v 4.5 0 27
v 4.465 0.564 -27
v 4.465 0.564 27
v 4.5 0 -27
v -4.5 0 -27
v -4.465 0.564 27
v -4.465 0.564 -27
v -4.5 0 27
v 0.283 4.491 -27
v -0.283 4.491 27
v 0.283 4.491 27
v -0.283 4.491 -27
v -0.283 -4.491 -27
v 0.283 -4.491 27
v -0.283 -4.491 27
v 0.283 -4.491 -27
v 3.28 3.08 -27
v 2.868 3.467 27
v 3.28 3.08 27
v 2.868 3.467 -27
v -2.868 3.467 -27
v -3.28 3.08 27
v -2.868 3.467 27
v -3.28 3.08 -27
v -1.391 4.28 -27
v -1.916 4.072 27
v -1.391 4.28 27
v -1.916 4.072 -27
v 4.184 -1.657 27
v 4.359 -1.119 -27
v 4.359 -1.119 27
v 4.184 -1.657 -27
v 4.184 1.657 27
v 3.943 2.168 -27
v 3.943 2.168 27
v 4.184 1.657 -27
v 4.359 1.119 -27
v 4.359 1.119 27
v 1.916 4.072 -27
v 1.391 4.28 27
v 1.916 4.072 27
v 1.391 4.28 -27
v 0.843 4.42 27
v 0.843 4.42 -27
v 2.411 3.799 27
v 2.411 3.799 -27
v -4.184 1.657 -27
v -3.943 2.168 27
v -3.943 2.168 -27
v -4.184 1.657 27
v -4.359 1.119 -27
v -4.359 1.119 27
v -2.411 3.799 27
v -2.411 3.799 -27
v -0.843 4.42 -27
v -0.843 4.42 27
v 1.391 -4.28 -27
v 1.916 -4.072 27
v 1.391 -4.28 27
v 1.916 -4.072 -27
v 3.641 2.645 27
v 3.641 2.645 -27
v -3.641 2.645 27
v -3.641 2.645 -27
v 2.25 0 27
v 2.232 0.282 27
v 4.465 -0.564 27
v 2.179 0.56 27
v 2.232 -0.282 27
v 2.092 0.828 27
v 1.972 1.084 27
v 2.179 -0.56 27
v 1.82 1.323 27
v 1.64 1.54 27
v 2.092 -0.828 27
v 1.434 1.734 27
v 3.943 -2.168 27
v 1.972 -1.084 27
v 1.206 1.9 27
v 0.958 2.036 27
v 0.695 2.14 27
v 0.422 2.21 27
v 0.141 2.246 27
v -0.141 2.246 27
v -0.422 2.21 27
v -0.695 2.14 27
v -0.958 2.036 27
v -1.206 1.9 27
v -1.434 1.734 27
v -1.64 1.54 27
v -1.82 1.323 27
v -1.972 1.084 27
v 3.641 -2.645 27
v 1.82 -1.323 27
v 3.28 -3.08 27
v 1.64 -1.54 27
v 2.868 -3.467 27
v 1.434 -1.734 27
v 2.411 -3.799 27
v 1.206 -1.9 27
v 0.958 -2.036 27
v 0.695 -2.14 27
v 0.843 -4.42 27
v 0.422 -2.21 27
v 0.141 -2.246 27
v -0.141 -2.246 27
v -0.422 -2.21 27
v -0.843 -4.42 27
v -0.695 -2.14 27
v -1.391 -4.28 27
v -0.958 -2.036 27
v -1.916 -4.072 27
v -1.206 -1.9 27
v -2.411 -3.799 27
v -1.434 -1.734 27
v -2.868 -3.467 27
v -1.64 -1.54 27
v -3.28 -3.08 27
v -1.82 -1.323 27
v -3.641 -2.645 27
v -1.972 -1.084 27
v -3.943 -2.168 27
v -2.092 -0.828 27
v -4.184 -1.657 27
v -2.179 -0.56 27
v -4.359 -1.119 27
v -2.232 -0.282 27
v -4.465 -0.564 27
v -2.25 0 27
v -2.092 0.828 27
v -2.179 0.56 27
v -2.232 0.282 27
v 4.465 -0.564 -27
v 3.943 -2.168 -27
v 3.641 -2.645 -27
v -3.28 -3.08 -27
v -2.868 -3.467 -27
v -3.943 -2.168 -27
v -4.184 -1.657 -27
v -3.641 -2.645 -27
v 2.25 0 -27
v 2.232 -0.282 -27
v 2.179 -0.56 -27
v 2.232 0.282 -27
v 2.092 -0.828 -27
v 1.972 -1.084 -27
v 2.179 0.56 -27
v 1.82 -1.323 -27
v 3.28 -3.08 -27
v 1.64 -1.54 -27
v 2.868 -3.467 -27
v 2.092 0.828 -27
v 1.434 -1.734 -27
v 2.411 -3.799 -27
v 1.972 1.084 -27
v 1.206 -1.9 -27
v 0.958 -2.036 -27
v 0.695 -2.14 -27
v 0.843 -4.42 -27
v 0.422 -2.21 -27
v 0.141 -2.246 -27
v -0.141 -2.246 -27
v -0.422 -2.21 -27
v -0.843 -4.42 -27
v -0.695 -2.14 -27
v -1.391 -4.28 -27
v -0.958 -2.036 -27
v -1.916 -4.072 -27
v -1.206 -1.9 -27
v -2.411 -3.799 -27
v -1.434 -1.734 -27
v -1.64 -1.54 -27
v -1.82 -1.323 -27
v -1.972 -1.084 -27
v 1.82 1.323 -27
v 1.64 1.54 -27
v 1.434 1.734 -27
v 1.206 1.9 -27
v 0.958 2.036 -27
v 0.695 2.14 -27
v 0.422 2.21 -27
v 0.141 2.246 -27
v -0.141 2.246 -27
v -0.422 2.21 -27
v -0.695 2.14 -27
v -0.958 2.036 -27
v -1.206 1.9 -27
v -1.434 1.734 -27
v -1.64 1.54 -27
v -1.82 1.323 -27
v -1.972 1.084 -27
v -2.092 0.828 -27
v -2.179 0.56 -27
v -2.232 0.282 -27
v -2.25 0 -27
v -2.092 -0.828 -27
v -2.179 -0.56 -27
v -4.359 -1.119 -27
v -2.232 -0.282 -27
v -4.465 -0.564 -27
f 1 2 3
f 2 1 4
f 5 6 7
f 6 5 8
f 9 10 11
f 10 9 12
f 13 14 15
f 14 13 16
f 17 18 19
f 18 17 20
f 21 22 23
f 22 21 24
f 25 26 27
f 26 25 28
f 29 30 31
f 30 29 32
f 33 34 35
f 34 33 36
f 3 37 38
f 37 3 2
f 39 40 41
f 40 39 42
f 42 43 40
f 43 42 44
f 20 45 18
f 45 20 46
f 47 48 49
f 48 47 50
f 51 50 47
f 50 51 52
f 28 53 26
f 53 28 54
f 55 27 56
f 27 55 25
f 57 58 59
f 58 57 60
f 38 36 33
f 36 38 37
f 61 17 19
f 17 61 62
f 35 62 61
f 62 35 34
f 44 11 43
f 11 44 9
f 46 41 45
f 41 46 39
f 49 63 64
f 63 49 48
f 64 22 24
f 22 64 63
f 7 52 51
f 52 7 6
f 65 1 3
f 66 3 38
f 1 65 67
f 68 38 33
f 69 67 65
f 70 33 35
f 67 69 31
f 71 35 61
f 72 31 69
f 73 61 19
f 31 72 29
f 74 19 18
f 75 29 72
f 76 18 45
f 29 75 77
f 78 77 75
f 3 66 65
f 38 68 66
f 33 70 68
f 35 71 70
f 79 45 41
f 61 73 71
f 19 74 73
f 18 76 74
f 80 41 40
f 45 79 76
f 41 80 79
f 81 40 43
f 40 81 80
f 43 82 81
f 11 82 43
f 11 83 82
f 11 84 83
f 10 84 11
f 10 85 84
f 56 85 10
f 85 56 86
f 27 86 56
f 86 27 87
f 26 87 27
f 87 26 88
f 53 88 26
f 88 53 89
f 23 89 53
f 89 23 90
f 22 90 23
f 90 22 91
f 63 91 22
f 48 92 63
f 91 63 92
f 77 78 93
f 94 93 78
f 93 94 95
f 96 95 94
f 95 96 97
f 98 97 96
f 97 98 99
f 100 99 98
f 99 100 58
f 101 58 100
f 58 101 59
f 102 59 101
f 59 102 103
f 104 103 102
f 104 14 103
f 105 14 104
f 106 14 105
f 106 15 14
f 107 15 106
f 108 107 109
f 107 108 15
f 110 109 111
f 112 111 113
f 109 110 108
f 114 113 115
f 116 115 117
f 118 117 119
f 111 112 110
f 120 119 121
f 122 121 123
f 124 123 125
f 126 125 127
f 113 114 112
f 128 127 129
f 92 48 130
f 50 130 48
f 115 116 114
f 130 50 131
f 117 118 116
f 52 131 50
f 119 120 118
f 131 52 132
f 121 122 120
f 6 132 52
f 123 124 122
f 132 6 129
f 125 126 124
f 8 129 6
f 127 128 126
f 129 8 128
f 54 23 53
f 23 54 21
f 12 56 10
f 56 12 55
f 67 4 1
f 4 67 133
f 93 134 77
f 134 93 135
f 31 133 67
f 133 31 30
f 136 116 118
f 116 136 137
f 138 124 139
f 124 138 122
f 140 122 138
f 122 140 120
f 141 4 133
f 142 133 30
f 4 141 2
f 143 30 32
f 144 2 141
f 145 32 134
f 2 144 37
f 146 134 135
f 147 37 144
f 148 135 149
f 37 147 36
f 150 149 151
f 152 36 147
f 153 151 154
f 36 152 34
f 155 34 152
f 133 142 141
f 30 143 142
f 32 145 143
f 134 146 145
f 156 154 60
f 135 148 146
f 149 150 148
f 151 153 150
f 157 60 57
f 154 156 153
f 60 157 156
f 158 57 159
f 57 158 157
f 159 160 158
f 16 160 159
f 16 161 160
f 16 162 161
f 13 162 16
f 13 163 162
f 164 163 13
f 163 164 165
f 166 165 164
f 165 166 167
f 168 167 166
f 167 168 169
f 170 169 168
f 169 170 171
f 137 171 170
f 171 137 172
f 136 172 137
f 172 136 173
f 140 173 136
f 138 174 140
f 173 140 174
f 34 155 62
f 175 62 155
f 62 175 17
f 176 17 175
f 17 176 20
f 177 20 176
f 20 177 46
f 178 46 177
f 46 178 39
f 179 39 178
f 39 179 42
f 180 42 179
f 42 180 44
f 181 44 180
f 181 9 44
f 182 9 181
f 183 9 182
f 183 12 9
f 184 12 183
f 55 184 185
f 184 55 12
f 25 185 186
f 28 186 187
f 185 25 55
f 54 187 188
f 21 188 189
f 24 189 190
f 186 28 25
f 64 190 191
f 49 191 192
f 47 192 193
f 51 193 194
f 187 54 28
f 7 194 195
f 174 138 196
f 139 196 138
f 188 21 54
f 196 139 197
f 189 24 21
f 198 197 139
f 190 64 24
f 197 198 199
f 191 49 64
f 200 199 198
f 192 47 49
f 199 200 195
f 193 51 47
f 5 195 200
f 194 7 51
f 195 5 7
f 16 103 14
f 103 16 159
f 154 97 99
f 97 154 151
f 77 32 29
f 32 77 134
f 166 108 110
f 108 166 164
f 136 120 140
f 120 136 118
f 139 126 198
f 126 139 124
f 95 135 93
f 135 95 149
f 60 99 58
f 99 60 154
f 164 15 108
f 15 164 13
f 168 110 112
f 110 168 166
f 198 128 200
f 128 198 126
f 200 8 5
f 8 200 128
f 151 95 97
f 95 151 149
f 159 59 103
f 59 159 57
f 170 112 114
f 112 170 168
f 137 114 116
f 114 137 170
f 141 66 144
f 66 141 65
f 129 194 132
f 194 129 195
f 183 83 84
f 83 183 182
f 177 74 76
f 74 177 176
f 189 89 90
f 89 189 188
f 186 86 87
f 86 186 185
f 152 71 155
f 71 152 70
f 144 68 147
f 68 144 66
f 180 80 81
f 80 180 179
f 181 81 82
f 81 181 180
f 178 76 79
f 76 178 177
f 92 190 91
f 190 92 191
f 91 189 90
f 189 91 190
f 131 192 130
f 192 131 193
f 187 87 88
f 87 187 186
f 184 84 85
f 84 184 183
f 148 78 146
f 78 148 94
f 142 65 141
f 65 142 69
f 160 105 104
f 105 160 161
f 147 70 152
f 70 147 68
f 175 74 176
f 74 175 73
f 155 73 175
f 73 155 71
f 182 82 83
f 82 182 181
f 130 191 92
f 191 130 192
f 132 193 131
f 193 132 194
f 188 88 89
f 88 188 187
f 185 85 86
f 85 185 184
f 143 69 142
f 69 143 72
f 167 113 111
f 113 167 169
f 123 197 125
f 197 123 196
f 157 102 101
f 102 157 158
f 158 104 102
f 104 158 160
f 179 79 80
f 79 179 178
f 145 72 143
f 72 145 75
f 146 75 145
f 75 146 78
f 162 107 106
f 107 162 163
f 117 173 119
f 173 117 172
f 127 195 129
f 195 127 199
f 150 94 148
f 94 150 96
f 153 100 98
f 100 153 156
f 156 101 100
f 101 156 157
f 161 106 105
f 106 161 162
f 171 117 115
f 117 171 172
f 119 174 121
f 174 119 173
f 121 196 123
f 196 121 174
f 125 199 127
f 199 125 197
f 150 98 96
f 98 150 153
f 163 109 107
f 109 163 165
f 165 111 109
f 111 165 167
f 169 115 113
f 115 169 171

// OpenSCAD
$fn = 50;


difference() {
	union() {
		translate(v = [0, 0, -27.0000000000]) {
			cylinder(h = 54, r = 4.5000000000);
		}
	}
	union() {
		translate(v = [0, 0, -100.0000000000]) {
			cylinder(h = 200, r = 2.2500000000);
		}
	}
}
